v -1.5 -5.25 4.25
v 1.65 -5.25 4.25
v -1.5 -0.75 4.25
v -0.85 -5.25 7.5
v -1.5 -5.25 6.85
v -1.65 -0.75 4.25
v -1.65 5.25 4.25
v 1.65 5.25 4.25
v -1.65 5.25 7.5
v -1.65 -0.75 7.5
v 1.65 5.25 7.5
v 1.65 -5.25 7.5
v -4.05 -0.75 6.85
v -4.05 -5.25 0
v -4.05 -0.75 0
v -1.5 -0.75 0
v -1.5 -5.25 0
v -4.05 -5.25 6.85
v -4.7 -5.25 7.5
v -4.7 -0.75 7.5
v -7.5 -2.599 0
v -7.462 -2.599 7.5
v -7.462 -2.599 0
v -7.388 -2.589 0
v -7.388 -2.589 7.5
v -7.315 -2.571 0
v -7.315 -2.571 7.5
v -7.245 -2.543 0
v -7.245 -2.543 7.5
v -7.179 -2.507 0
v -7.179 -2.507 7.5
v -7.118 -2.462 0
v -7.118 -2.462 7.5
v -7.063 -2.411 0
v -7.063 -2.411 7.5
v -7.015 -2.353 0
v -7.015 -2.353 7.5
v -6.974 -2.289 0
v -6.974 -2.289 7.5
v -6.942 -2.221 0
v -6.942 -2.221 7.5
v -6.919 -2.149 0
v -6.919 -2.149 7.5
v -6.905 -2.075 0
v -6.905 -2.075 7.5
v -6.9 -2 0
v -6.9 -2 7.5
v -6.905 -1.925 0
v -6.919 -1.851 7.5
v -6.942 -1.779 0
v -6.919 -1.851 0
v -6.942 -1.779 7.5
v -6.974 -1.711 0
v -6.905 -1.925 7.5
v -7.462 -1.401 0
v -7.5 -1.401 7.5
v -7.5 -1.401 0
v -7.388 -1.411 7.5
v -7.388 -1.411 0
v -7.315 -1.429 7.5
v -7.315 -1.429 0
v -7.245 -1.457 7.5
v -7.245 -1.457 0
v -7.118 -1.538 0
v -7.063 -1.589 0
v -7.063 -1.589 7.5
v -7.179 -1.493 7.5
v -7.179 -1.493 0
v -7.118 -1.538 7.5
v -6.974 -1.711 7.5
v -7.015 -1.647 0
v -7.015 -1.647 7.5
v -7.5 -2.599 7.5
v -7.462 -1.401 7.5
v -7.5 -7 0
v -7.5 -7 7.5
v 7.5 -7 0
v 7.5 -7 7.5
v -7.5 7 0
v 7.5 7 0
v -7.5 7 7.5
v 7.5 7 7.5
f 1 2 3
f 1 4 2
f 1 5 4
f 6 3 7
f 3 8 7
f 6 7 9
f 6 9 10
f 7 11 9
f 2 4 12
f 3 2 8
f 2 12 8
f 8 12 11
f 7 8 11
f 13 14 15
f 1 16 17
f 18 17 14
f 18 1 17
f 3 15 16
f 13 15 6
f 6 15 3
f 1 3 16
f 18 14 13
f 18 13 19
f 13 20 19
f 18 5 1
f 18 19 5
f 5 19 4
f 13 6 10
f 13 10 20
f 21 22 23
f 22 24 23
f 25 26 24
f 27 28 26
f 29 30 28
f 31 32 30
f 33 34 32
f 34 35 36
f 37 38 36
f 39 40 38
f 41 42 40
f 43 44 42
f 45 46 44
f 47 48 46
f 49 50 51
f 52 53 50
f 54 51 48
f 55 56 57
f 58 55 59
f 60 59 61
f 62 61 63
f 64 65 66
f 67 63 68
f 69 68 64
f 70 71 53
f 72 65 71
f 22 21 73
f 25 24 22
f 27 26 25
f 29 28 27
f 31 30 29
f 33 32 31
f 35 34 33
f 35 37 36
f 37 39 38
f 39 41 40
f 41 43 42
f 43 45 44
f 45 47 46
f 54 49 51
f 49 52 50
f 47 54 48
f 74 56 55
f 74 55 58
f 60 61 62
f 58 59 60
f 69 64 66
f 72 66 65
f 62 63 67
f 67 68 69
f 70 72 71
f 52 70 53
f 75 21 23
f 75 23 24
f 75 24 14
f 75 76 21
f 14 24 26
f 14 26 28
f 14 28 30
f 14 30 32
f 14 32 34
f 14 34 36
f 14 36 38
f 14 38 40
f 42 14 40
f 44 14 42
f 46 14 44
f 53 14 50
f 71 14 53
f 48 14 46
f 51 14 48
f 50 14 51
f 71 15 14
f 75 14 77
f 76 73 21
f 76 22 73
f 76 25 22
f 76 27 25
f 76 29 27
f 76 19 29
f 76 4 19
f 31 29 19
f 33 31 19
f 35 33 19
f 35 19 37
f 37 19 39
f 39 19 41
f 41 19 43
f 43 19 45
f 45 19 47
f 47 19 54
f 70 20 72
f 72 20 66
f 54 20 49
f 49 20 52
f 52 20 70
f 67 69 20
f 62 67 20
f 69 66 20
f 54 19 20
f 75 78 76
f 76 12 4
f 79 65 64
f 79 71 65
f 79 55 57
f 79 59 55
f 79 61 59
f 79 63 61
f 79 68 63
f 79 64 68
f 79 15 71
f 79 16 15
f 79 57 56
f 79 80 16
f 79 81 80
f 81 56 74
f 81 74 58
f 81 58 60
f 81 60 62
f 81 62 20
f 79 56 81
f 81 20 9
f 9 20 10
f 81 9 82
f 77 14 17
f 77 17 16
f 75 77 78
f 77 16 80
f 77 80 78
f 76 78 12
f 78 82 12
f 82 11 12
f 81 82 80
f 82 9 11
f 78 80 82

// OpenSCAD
$fn = 50;

difference() {
	union() {
		translate(v = [0, -5, 0]) {
			rotate(a = [0, 0, 0]) {
				difference() {
					union() {
						translate(v = [-7.5, -2.0, 0]) {
							cube(size = [15.0, 14.0, 7.5]);
						}
					}
					union() {
						translate(v = [-1.65, -0.25, 4.25]) {
							cube(size = [3.3, 10.5, 3.35]);
						}
						translate(v = [0, 4.25, 0]) {
							rotate(a = [90, 0, 0]) {
								linear_extrude(height = 4.5) {
									polygon(points = [[-1.5, -0.1], [-4.05, -0.1], [-4.05, 6.85], [-4.8, 7.6], [-0.75, 7.6], [-1.5, 6.85]]);
								}
							}
						}
						translate(v = [-7.5, 3, -0.1]) {
							cylinder(h = 7.7, r = 0.6);
						}
					}
				}
			}
		}
	}
	union();
}
